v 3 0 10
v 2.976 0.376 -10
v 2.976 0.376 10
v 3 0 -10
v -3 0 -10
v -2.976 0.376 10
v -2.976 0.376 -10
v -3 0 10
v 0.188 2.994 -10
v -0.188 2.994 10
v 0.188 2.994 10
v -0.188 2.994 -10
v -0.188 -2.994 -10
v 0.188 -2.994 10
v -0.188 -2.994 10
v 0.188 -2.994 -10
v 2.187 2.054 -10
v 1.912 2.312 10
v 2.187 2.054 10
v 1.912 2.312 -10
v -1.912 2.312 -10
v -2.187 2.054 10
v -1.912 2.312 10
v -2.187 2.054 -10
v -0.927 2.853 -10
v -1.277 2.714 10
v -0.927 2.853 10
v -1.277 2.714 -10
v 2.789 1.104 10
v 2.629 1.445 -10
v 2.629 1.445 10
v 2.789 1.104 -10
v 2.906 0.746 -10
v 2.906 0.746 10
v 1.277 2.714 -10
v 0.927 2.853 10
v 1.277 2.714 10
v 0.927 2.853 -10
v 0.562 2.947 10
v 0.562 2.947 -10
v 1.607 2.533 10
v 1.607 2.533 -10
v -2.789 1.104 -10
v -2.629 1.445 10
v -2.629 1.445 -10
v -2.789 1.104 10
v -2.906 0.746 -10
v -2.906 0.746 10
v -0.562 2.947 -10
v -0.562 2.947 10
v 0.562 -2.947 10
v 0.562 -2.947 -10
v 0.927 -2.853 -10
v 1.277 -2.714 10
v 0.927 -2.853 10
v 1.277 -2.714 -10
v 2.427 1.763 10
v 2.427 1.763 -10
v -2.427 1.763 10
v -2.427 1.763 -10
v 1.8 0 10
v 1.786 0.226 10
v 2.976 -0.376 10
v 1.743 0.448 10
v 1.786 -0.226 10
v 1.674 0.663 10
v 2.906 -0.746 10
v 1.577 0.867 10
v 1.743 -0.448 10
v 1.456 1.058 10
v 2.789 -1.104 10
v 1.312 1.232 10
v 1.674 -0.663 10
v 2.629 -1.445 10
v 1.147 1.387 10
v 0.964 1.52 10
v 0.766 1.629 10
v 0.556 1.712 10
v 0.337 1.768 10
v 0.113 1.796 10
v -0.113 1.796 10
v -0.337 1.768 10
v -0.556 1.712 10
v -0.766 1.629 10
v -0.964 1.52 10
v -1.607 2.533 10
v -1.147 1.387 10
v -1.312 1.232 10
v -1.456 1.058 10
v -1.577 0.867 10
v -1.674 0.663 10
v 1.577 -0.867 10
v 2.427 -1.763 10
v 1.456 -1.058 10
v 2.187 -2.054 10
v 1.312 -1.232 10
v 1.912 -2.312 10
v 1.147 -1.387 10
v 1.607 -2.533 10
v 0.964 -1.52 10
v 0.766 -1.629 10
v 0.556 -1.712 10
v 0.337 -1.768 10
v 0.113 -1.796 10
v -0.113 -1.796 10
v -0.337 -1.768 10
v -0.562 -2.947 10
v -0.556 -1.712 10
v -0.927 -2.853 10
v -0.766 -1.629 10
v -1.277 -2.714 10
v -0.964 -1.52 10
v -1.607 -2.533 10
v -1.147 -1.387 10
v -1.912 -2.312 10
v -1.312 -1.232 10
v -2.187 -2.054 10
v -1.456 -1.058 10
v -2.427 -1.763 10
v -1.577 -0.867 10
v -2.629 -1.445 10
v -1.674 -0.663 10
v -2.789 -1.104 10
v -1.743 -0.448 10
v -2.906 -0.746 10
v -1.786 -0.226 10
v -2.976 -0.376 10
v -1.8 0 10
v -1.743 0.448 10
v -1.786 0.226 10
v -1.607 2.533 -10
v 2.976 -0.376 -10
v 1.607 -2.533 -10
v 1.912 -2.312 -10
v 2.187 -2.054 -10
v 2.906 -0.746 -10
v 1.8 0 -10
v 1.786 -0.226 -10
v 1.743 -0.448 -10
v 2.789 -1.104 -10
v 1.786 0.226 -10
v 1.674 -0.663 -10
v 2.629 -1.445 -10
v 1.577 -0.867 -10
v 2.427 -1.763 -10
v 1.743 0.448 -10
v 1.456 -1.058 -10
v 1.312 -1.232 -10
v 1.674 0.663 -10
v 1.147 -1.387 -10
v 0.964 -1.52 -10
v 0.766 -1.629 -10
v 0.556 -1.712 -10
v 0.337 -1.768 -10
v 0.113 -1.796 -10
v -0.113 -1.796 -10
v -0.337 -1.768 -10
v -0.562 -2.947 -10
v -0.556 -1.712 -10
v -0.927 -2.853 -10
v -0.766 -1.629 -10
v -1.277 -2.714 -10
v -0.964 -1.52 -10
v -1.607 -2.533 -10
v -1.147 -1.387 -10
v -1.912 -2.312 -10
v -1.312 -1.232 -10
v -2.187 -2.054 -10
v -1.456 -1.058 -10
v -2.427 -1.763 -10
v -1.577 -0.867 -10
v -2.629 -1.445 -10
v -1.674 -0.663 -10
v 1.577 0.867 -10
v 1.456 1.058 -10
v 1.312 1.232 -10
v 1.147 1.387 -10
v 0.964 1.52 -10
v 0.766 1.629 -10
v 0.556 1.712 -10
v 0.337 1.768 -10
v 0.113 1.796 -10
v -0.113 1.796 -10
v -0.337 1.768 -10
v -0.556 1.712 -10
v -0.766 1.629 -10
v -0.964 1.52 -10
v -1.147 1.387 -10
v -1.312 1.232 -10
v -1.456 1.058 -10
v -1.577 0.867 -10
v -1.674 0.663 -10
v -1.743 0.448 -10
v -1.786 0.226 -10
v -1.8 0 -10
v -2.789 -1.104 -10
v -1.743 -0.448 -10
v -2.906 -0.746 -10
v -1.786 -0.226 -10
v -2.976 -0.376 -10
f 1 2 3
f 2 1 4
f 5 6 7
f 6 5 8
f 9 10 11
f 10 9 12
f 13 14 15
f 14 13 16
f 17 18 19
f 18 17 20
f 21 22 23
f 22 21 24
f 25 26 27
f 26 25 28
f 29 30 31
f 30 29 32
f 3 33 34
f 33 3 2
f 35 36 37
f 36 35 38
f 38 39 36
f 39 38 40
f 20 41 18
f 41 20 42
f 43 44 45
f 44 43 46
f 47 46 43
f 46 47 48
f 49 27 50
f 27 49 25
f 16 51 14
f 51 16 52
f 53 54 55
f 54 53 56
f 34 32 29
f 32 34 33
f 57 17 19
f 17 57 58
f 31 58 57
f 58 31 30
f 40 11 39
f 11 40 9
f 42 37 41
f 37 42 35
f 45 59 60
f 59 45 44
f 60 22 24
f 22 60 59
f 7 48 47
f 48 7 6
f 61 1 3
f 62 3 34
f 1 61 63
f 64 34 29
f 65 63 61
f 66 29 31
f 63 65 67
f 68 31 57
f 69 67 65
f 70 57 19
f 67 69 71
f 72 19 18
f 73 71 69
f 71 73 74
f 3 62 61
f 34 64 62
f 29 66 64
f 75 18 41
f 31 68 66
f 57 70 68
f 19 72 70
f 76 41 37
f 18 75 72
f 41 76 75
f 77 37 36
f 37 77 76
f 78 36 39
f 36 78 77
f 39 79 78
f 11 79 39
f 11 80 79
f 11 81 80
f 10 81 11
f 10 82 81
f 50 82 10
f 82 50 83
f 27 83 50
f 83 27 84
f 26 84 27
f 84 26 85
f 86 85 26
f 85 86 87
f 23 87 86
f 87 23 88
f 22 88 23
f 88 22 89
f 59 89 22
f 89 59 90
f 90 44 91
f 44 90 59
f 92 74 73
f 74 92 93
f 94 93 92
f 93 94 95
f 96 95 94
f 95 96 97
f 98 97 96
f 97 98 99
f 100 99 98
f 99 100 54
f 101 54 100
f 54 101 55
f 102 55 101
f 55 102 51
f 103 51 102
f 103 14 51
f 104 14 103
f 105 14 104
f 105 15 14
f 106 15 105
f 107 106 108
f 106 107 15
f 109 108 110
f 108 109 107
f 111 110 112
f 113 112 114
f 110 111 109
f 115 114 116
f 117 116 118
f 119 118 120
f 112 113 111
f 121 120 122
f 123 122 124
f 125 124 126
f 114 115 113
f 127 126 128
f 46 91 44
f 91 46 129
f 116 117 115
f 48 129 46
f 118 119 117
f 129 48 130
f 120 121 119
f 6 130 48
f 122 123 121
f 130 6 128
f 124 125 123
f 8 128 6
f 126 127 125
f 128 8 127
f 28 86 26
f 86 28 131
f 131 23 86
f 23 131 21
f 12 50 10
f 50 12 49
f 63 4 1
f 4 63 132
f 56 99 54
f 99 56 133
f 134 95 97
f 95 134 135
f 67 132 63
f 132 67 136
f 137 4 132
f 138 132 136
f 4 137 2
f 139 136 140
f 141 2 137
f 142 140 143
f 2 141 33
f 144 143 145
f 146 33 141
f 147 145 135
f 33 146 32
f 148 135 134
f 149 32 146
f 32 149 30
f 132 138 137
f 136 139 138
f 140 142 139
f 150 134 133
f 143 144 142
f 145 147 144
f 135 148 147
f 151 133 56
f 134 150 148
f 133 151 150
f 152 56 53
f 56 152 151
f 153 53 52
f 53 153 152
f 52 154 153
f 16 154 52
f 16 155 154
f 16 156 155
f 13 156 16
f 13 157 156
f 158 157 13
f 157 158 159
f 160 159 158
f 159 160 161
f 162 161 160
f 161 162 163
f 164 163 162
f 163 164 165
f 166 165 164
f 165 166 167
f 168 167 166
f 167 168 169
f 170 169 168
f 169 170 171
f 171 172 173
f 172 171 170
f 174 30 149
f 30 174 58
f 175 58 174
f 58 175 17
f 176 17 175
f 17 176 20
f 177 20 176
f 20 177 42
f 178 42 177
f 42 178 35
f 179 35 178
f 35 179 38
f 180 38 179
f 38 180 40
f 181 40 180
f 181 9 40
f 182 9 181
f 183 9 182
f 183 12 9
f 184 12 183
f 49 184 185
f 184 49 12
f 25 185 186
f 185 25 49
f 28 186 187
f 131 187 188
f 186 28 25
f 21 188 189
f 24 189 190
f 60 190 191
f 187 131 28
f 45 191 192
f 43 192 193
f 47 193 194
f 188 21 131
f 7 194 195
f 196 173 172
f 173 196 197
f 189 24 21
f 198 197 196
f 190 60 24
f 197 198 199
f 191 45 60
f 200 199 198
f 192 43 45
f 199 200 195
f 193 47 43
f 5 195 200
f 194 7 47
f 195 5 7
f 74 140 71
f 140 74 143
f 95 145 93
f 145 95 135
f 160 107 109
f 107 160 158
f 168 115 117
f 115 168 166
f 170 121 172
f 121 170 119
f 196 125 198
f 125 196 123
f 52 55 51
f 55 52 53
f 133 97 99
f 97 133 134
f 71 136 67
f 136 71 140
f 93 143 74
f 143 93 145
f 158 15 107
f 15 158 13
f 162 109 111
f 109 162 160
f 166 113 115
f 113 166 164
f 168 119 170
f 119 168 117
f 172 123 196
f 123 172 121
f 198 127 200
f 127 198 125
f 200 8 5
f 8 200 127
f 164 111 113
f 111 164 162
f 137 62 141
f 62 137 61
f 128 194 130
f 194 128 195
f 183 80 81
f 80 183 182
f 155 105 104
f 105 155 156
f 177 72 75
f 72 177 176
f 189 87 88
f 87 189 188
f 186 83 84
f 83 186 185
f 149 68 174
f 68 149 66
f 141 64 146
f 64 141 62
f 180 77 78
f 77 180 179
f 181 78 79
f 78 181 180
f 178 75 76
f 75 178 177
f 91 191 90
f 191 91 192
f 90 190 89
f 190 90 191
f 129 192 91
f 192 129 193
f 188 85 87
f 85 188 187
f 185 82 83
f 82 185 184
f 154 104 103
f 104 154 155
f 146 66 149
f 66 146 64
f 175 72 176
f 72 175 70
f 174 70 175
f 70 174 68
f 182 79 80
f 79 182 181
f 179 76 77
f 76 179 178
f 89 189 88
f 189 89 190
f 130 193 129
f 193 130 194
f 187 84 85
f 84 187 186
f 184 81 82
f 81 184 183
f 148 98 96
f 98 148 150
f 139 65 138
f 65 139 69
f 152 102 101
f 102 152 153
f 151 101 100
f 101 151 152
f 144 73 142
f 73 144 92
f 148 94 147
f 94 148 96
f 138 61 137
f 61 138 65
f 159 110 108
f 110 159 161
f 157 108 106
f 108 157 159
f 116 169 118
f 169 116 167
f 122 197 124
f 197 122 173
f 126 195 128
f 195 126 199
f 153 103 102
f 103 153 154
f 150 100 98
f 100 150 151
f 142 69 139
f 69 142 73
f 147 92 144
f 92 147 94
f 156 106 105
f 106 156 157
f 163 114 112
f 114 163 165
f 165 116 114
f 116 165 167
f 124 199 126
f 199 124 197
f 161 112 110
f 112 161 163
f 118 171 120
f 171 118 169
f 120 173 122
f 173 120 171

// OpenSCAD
$fn = 50;


difference() {
	union() {
		translate(v = [0, 0, -10.0000000000]) {
			cylinder(h = 20, r = 3.0000000000);
		}
	}
	union() {
		translate(v = [0, 0, -100.0000000000]) {
			cylinder(h = 200, r = 1.8000000000);
		}
	}
}
